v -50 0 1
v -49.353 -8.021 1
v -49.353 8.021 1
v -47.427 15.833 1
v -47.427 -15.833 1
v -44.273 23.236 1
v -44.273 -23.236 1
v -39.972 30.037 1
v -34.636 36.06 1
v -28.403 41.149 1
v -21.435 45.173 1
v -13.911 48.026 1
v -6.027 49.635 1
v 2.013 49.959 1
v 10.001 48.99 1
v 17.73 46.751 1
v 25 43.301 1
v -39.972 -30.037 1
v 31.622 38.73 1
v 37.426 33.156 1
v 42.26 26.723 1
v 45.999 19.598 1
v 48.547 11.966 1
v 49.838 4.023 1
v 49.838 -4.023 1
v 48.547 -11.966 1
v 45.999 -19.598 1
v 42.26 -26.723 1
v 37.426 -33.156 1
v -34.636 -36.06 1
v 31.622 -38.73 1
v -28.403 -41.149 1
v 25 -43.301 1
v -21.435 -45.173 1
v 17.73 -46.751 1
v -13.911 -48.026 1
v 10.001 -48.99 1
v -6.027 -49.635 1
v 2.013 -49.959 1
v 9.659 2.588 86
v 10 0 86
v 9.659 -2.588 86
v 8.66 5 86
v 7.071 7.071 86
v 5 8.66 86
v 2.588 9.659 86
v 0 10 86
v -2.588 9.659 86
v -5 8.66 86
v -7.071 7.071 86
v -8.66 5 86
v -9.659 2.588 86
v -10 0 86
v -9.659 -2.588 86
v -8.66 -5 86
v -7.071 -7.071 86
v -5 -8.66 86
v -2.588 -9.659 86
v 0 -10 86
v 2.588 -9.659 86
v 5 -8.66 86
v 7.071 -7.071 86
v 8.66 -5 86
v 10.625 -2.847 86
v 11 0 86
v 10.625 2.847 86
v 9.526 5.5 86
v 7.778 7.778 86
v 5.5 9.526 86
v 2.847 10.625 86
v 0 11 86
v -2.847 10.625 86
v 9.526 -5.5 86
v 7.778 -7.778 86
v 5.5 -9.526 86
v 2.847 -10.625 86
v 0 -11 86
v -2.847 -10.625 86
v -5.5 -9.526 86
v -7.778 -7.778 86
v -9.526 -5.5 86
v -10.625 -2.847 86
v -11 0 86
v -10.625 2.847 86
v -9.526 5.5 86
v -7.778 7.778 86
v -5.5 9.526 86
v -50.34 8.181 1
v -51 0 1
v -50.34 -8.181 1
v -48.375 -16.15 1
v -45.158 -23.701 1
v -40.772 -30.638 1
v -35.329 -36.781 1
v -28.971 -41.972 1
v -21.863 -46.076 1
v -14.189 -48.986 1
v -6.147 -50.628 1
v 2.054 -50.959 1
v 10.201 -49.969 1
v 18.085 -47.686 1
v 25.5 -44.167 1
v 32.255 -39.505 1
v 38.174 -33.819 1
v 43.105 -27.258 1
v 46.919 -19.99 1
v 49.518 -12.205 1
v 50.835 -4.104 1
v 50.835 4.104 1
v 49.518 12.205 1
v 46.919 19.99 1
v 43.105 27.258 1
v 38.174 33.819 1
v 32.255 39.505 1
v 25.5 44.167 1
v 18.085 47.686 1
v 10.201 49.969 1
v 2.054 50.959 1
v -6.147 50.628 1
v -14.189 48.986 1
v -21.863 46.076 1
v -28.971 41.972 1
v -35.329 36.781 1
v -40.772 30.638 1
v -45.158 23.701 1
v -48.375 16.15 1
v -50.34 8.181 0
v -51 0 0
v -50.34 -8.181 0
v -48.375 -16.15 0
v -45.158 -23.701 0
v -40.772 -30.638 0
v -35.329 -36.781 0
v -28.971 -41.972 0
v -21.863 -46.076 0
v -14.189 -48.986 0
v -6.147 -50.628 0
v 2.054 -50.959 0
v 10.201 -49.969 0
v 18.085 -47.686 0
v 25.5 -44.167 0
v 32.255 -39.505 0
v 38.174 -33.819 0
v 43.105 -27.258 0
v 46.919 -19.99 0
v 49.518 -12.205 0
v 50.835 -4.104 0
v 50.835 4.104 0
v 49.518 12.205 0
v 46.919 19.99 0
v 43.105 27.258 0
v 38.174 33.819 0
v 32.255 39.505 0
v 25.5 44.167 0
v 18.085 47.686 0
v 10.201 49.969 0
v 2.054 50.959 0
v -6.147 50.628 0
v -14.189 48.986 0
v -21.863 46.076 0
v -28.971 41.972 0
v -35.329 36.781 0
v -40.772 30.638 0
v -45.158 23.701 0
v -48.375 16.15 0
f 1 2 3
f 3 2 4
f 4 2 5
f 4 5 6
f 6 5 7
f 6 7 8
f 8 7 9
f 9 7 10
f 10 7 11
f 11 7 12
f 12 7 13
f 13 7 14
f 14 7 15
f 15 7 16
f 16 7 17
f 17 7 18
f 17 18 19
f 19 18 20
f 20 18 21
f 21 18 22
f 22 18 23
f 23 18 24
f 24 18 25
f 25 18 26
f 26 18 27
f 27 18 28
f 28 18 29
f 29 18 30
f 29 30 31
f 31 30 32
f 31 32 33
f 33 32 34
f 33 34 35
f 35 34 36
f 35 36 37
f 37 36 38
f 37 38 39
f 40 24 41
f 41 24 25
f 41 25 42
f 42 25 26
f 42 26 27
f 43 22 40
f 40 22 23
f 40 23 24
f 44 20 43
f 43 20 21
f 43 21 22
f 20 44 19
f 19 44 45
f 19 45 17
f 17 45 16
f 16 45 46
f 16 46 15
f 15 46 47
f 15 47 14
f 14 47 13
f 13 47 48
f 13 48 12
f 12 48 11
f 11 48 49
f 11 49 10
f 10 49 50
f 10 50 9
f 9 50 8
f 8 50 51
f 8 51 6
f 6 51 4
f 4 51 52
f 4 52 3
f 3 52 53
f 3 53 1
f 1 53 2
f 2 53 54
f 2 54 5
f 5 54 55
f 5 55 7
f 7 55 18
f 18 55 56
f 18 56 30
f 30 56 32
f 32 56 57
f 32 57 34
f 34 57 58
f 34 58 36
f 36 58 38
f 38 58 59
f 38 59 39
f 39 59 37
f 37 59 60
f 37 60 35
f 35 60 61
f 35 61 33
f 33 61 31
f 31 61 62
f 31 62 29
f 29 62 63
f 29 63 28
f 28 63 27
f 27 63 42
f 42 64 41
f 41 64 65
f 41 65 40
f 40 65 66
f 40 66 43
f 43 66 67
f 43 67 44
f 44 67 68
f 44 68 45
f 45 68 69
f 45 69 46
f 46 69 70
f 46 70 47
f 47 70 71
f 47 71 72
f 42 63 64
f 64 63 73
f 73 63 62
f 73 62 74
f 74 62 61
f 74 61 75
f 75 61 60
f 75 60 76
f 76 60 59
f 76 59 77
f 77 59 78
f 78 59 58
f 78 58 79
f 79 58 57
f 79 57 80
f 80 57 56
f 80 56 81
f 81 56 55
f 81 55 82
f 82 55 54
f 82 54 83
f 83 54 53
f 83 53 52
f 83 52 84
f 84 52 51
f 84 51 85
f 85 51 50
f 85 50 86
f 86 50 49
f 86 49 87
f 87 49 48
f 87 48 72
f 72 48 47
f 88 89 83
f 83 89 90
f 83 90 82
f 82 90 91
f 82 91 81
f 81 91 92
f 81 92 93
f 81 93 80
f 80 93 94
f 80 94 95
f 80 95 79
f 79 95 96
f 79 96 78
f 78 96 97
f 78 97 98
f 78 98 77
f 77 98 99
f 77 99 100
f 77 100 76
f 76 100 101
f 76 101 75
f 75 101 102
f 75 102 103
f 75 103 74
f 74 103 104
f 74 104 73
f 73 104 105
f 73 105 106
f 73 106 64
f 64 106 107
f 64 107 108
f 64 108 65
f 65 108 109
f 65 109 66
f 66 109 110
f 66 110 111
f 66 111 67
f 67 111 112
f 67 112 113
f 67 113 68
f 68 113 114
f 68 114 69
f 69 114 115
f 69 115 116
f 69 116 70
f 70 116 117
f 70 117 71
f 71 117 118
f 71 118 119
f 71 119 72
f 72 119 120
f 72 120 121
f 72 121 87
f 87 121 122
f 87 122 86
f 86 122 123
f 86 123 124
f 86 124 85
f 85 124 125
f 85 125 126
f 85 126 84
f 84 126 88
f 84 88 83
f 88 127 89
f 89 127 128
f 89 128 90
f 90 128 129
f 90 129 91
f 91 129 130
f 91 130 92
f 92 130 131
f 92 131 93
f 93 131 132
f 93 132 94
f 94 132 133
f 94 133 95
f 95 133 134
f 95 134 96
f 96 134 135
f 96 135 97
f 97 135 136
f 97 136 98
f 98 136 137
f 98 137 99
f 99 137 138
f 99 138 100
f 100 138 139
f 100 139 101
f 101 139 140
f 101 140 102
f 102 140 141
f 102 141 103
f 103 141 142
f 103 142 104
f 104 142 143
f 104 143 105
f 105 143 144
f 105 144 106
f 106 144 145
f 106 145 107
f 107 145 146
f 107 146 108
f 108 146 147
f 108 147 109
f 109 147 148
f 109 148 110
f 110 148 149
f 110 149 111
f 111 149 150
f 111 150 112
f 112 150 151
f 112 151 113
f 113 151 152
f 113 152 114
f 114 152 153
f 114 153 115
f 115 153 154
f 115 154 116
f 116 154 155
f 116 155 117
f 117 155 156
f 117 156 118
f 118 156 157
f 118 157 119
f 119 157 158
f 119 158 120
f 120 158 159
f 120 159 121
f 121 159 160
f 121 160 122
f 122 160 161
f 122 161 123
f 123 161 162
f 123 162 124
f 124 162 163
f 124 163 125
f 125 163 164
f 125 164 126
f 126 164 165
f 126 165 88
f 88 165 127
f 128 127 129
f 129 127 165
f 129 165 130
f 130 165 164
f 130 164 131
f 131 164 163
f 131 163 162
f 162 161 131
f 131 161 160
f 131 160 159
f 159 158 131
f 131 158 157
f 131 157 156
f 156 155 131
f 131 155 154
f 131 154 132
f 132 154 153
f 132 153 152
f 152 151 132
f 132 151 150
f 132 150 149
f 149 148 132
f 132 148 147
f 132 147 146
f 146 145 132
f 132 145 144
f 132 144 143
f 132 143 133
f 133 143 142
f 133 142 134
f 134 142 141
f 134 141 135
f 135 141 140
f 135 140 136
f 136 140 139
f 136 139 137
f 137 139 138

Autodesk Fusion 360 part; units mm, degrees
sketch "スケッチ1" plane through (0, 0, 0) normal (0, 0, 1) x (1, 0, 0)
  circle A0 centre (0, 0) radius 50
  circle A1 centre (0, 0) radius 51
  dimension "d1" = 102
ref_plane "作業平面1" through (0, 0, 86) normal (0, 0, 1) x (1, 0, 0)
sketch "スケッチ2" plane through (0, 0, 86) normal (0, 0, 1) x (1, 0, 0)
  circle A0 centre (0, 0) radius 10
  circle A1 centre (0, 0) radius 11
  dimension "d3" = 20
  dimension "d4" = 22
extrude "押し出し1" add sketch "スケッチ1" along normal blind 1 contours A0 | A1
sketch "スケッチ3" plane through (0, 0, 1) normal (0, 0, 1) x (-1, 0, 0)
  circle A0 centre (0, 0) radius 51
  circle A1 centre (0, 0) radius 51
  circle A2 centre (0, 0) radius 50
  dimension "d7" = 100
loft "ロフト1" add profiles "スケッチ3", "スケッチ2" section 1 section 2 contours A0 | A1
loft "ロフト2" cut profiles "スケッチ2", "スケッチ3" section 1 contours A0 section 2 contours A2
